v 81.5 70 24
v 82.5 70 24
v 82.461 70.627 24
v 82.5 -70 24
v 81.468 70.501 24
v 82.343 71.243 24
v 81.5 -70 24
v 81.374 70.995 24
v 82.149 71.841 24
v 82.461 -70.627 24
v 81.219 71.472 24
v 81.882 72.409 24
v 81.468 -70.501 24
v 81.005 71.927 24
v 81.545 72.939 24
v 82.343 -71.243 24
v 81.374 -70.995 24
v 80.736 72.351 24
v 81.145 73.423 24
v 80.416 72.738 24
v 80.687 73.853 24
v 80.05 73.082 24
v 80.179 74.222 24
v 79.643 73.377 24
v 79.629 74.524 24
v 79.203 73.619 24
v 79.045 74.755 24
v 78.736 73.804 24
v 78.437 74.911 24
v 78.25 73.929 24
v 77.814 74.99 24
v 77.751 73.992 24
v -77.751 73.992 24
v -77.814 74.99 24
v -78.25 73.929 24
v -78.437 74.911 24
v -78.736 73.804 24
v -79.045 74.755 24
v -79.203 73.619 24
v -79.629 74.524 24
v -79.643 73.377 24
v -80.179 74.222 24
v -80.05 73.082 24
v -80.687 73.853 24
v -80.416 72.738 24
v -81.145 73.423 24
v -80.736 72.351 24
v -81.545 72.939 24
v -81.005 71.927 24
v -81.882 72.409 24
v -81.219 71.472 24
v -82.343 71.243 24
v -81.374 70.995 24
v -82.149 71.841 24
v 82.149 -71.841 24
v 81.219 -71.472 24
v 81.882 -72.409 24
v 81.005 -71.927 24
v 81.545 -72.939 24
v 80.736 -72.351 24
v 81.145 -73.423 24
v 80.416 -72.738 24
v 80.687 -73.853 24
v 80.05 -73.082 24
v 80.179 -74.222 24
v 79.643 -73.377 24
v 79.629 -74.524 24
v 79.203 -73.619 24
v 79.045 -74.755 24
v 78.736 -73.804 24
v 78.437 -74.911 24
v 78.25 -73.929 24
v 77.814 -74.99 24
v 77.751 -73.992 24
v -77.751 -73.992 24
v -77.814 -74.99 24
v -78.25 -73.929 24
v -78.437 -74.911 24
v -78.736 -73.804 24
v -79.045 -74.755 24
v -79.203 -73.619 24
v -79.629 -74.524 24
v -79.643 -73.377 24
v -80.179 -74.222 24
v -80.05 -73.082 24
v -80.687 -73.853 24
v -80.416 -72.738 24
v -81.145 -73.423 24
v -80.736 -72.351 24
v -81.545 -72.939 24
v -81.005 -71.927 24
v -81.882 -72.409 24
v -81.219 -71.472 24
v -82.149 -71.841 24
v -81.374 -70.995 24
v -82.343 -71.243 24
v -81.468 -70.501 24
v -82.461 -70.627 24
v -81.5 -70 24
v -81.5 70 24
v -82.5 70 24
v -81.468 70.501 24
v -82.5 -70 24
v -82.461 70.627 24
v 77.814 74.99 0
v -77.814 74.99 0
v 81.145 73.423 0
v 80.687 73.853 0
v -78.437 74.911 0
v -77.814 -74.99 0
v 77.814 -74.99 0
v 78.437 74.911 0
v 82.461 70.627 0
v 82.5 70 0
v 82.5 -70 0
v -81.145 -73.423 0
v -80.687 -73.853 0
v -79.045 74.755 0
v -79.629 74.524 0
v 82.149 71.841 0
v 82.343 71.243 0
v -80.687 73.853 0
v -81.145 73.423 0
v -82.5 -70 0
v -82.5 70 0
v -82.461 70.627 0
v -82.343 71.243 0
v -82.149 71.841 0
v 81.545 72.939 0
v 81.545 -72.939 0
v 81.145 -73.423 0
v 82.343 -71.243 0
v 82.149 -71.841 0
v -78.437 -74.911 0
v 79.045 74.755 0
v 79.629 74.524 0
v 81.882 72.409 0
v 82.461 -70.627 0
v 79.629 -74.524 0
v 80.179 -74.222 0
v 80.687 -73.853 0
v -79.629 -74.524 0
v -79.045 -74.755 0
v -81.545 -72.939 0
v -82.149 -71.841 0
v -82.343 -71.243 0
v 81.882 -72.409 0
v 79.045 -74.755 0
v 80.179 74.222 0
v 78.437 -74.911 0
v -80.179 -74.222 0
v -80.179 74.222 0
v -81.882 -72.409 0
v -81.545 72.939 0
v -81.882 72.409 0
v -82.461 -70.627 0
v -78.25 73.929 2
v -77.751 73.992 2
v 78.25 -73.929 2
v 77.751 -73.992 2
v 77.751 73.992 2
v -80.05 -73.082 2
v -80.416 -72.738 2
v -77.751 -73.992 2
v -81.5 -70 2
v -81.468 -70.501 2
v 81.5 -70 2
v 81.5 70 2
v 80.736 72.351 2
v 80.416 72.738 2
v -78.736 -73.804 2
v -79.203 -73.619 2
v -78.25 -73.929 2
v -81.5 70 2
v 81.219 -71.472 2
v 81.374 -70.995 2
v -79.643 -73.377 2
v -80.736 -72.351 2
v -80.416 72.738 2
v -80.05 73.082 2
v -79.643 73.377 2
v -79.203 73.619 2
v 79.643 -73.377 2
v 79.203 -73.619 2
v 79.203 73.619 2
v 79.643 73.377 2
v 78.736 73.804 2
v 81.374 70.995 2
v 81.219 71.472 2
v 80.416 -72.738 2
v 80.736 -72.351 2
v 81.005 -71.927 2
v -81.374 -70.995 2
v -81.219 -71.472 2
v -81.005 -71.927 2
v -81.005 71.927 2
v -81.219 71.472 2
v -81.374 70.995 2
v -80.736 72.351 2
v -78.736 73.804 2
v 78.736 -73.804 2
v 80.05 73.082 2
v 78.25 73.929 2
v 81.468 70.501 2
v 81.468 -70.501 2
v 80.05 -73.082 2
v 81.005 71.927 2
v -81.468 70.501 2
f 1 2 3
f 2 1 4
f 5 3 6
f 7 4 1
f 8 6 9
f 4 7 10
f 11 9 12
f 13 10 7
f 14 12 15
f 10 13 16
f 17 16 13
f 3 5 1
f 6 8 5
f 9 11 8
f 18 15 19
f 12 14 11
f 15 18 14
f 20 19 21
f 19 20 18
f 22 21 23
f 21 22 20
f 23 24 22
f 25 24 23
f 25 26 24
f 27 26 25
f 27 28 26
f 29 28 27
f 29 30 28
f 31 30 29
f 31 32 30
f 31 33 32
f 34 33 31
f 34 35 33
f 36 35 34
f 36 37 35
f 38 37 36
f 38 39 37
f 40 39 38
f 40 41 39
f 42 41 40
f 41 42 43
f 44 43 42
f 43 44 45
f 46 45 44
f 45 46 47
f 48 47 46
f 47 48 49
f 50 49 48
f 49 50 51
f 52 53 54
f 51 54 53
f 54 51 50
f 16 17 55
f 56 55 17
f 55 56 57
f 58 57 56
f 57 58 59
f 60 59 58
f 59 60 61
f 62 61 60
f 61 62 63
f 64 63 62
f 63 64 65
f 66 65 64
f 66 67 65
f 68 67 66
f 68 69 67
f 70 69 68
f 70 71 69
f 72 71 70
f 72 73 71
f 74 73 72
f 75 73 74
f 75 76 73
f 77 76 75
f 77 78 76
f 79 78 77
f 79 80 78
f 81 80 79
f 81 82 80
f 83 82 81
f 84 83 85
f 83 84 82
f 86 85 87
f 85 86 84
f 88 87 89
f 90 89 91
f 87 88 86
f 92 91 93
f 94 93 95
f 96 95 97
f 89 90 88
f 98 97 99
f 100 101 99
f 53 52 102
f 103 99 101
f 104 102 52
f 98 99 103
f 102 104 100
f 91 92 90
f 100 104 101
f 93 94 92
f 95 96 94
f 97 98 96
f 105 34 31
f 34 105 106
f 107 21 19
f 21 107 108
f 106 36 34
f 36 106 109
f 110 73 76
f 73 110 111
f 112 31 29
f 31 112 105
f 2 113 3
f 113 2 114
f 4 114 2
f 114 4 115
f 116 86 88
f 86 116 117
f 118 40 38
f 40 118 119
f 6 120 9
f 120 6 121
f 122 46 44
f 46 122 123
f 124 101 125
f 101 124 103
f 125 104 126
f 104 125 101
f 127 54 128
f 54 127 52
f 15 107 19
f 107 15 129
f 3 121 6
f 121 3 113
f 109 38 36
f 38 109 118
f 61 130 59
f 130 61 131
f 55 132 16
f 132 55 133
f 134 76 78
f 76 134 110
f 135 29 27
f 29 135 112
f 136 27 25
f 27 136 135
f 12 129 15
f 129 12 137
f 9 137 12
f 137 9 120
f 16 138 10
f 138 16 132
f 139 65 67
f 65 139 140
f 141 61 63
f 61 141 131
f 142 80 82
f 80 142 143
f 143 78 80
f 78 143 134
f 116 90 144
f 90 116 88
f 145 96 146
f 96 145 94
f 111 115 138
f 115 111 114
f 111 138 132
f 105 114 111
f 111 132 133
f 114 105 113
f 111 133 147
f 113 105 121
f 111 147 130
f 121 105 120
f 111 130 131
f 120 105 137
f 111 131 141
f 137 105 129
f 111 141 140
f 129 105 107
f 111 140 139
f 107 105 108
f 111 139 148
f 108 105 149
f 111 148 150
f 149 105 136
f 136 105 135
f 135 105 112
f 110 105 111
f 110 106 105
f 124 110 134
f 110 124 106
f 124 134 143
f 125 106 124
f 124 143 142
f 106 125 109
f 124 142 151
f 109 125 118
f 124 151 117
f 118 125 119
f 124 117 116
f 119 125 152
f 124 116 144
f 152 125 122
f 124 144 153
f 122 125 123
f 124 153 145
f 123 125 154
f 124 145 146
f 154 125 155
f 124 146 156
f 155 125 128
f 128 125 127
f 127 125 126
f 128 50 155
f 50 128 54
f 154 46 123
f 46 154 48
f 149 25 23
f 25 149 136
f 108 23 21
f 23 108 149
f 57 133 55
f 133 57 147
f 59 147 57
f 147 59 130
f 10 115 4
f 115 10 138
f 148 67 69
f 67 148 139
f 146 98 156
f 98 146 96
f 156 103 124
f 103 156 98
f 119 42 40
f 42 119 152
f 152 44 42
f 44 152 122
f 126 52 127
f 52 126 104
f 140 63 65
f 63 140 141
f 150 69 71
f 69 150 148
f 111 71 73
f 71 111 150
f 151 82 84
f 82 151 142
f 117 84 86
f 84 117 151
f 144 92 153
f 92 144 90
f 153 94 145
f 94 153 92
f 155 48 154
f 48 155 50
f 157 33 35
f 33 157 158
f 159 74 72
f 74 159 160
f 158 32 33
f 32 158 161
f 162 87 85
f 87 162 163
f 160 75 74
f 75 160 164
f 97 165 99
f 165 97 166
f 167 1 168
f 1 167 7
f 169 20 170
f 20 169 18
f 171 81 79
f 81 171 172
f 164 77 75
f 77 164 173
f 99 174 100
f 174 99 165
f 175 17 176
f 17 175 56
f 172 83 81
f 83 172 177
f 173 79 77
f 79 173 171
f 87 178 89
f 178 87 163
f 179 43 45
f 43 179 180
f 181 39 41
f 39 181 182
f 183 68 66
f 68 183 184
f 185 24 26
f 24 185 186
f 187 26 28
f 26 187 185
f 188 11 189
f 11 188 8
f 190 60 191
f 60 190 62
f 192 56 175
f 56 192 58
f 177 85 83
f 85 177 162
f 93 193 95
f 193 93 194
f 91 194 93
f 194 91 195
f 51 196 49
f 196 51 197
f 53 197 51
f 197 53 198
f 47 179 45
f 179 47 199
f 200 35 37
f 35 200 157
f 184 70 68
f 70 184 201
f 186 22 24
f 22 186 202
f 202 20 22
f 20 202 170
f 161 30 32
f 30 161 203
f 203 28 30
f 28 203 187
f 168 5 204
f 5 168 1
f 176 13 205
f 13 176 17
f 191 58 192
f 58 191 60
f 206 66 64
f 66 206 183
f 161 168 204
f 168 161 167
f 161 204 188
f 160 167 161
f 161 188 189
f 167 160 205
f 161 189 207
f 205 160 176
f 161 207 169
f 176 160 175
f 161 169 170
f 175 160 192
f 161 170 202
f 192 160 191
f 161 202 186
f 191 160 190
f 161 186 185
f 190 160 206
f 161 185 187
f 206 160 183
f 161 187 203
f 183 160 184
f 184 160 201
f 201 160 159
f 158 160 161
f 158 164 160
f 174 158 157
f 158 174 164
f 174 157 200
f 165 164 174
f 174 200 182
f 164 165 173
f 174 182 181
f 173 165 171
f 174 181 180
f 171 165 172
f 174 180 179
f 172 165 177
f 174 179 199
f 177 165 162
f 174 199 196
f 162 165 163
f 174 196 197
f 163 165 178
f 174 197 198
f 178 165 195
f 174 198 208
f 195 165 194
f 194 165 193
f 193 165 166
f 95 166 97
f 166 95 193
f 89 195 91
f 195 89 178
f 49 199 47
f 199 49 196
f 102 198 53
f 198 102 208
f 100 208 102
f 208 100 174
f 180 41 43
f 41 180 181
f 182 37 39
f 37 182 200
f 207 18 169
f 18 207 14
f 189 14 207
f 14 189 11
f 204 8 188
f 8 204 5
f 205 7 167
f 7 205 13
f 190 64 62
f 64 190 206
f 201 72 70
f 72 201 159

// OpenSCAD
$fn = 50;


difference() {
	union() {
		hull() {
			translate(v = [-77.5000000000, 70.0000000000, 0]) {
				cylinder(h = 24, r = 5);
			}
			translate(v = [77.5000000000, 70.0000000000, 0]) {
				cylinder(h = 24, r = 5);
			}
			translate(v = [-77.5000000000, -70.0000000000, 0]) {
				cylinder(h = 24, r = 5);
			}
			translate(v = [77.5000000000, -70.0000000000, 0]) {
				cylinder(h = 24, r = 5);
			}
		}
	}
	union() {
		translate(v = [0, 0, 2]) {
			hull() {
				translate(v = [-77.5000000000, 70.0000000000, 0]) {
					cylinder(h = 22, r = 4);
				}
				translate(v = [77.5000000000, 70.0000000000, 0]) {
					cylinder(h = 22, r = 4);
				}
				translate(v = [-77.5000000000, -70.0000000000, 0]) {
					cylinder(h = 22, r = 4);
				}
				translate(v = [77.5000000000, -70.0000000000, 0]) {
					cylinder(h = 22, r = 4);
				}
			}
		}
	}
}
